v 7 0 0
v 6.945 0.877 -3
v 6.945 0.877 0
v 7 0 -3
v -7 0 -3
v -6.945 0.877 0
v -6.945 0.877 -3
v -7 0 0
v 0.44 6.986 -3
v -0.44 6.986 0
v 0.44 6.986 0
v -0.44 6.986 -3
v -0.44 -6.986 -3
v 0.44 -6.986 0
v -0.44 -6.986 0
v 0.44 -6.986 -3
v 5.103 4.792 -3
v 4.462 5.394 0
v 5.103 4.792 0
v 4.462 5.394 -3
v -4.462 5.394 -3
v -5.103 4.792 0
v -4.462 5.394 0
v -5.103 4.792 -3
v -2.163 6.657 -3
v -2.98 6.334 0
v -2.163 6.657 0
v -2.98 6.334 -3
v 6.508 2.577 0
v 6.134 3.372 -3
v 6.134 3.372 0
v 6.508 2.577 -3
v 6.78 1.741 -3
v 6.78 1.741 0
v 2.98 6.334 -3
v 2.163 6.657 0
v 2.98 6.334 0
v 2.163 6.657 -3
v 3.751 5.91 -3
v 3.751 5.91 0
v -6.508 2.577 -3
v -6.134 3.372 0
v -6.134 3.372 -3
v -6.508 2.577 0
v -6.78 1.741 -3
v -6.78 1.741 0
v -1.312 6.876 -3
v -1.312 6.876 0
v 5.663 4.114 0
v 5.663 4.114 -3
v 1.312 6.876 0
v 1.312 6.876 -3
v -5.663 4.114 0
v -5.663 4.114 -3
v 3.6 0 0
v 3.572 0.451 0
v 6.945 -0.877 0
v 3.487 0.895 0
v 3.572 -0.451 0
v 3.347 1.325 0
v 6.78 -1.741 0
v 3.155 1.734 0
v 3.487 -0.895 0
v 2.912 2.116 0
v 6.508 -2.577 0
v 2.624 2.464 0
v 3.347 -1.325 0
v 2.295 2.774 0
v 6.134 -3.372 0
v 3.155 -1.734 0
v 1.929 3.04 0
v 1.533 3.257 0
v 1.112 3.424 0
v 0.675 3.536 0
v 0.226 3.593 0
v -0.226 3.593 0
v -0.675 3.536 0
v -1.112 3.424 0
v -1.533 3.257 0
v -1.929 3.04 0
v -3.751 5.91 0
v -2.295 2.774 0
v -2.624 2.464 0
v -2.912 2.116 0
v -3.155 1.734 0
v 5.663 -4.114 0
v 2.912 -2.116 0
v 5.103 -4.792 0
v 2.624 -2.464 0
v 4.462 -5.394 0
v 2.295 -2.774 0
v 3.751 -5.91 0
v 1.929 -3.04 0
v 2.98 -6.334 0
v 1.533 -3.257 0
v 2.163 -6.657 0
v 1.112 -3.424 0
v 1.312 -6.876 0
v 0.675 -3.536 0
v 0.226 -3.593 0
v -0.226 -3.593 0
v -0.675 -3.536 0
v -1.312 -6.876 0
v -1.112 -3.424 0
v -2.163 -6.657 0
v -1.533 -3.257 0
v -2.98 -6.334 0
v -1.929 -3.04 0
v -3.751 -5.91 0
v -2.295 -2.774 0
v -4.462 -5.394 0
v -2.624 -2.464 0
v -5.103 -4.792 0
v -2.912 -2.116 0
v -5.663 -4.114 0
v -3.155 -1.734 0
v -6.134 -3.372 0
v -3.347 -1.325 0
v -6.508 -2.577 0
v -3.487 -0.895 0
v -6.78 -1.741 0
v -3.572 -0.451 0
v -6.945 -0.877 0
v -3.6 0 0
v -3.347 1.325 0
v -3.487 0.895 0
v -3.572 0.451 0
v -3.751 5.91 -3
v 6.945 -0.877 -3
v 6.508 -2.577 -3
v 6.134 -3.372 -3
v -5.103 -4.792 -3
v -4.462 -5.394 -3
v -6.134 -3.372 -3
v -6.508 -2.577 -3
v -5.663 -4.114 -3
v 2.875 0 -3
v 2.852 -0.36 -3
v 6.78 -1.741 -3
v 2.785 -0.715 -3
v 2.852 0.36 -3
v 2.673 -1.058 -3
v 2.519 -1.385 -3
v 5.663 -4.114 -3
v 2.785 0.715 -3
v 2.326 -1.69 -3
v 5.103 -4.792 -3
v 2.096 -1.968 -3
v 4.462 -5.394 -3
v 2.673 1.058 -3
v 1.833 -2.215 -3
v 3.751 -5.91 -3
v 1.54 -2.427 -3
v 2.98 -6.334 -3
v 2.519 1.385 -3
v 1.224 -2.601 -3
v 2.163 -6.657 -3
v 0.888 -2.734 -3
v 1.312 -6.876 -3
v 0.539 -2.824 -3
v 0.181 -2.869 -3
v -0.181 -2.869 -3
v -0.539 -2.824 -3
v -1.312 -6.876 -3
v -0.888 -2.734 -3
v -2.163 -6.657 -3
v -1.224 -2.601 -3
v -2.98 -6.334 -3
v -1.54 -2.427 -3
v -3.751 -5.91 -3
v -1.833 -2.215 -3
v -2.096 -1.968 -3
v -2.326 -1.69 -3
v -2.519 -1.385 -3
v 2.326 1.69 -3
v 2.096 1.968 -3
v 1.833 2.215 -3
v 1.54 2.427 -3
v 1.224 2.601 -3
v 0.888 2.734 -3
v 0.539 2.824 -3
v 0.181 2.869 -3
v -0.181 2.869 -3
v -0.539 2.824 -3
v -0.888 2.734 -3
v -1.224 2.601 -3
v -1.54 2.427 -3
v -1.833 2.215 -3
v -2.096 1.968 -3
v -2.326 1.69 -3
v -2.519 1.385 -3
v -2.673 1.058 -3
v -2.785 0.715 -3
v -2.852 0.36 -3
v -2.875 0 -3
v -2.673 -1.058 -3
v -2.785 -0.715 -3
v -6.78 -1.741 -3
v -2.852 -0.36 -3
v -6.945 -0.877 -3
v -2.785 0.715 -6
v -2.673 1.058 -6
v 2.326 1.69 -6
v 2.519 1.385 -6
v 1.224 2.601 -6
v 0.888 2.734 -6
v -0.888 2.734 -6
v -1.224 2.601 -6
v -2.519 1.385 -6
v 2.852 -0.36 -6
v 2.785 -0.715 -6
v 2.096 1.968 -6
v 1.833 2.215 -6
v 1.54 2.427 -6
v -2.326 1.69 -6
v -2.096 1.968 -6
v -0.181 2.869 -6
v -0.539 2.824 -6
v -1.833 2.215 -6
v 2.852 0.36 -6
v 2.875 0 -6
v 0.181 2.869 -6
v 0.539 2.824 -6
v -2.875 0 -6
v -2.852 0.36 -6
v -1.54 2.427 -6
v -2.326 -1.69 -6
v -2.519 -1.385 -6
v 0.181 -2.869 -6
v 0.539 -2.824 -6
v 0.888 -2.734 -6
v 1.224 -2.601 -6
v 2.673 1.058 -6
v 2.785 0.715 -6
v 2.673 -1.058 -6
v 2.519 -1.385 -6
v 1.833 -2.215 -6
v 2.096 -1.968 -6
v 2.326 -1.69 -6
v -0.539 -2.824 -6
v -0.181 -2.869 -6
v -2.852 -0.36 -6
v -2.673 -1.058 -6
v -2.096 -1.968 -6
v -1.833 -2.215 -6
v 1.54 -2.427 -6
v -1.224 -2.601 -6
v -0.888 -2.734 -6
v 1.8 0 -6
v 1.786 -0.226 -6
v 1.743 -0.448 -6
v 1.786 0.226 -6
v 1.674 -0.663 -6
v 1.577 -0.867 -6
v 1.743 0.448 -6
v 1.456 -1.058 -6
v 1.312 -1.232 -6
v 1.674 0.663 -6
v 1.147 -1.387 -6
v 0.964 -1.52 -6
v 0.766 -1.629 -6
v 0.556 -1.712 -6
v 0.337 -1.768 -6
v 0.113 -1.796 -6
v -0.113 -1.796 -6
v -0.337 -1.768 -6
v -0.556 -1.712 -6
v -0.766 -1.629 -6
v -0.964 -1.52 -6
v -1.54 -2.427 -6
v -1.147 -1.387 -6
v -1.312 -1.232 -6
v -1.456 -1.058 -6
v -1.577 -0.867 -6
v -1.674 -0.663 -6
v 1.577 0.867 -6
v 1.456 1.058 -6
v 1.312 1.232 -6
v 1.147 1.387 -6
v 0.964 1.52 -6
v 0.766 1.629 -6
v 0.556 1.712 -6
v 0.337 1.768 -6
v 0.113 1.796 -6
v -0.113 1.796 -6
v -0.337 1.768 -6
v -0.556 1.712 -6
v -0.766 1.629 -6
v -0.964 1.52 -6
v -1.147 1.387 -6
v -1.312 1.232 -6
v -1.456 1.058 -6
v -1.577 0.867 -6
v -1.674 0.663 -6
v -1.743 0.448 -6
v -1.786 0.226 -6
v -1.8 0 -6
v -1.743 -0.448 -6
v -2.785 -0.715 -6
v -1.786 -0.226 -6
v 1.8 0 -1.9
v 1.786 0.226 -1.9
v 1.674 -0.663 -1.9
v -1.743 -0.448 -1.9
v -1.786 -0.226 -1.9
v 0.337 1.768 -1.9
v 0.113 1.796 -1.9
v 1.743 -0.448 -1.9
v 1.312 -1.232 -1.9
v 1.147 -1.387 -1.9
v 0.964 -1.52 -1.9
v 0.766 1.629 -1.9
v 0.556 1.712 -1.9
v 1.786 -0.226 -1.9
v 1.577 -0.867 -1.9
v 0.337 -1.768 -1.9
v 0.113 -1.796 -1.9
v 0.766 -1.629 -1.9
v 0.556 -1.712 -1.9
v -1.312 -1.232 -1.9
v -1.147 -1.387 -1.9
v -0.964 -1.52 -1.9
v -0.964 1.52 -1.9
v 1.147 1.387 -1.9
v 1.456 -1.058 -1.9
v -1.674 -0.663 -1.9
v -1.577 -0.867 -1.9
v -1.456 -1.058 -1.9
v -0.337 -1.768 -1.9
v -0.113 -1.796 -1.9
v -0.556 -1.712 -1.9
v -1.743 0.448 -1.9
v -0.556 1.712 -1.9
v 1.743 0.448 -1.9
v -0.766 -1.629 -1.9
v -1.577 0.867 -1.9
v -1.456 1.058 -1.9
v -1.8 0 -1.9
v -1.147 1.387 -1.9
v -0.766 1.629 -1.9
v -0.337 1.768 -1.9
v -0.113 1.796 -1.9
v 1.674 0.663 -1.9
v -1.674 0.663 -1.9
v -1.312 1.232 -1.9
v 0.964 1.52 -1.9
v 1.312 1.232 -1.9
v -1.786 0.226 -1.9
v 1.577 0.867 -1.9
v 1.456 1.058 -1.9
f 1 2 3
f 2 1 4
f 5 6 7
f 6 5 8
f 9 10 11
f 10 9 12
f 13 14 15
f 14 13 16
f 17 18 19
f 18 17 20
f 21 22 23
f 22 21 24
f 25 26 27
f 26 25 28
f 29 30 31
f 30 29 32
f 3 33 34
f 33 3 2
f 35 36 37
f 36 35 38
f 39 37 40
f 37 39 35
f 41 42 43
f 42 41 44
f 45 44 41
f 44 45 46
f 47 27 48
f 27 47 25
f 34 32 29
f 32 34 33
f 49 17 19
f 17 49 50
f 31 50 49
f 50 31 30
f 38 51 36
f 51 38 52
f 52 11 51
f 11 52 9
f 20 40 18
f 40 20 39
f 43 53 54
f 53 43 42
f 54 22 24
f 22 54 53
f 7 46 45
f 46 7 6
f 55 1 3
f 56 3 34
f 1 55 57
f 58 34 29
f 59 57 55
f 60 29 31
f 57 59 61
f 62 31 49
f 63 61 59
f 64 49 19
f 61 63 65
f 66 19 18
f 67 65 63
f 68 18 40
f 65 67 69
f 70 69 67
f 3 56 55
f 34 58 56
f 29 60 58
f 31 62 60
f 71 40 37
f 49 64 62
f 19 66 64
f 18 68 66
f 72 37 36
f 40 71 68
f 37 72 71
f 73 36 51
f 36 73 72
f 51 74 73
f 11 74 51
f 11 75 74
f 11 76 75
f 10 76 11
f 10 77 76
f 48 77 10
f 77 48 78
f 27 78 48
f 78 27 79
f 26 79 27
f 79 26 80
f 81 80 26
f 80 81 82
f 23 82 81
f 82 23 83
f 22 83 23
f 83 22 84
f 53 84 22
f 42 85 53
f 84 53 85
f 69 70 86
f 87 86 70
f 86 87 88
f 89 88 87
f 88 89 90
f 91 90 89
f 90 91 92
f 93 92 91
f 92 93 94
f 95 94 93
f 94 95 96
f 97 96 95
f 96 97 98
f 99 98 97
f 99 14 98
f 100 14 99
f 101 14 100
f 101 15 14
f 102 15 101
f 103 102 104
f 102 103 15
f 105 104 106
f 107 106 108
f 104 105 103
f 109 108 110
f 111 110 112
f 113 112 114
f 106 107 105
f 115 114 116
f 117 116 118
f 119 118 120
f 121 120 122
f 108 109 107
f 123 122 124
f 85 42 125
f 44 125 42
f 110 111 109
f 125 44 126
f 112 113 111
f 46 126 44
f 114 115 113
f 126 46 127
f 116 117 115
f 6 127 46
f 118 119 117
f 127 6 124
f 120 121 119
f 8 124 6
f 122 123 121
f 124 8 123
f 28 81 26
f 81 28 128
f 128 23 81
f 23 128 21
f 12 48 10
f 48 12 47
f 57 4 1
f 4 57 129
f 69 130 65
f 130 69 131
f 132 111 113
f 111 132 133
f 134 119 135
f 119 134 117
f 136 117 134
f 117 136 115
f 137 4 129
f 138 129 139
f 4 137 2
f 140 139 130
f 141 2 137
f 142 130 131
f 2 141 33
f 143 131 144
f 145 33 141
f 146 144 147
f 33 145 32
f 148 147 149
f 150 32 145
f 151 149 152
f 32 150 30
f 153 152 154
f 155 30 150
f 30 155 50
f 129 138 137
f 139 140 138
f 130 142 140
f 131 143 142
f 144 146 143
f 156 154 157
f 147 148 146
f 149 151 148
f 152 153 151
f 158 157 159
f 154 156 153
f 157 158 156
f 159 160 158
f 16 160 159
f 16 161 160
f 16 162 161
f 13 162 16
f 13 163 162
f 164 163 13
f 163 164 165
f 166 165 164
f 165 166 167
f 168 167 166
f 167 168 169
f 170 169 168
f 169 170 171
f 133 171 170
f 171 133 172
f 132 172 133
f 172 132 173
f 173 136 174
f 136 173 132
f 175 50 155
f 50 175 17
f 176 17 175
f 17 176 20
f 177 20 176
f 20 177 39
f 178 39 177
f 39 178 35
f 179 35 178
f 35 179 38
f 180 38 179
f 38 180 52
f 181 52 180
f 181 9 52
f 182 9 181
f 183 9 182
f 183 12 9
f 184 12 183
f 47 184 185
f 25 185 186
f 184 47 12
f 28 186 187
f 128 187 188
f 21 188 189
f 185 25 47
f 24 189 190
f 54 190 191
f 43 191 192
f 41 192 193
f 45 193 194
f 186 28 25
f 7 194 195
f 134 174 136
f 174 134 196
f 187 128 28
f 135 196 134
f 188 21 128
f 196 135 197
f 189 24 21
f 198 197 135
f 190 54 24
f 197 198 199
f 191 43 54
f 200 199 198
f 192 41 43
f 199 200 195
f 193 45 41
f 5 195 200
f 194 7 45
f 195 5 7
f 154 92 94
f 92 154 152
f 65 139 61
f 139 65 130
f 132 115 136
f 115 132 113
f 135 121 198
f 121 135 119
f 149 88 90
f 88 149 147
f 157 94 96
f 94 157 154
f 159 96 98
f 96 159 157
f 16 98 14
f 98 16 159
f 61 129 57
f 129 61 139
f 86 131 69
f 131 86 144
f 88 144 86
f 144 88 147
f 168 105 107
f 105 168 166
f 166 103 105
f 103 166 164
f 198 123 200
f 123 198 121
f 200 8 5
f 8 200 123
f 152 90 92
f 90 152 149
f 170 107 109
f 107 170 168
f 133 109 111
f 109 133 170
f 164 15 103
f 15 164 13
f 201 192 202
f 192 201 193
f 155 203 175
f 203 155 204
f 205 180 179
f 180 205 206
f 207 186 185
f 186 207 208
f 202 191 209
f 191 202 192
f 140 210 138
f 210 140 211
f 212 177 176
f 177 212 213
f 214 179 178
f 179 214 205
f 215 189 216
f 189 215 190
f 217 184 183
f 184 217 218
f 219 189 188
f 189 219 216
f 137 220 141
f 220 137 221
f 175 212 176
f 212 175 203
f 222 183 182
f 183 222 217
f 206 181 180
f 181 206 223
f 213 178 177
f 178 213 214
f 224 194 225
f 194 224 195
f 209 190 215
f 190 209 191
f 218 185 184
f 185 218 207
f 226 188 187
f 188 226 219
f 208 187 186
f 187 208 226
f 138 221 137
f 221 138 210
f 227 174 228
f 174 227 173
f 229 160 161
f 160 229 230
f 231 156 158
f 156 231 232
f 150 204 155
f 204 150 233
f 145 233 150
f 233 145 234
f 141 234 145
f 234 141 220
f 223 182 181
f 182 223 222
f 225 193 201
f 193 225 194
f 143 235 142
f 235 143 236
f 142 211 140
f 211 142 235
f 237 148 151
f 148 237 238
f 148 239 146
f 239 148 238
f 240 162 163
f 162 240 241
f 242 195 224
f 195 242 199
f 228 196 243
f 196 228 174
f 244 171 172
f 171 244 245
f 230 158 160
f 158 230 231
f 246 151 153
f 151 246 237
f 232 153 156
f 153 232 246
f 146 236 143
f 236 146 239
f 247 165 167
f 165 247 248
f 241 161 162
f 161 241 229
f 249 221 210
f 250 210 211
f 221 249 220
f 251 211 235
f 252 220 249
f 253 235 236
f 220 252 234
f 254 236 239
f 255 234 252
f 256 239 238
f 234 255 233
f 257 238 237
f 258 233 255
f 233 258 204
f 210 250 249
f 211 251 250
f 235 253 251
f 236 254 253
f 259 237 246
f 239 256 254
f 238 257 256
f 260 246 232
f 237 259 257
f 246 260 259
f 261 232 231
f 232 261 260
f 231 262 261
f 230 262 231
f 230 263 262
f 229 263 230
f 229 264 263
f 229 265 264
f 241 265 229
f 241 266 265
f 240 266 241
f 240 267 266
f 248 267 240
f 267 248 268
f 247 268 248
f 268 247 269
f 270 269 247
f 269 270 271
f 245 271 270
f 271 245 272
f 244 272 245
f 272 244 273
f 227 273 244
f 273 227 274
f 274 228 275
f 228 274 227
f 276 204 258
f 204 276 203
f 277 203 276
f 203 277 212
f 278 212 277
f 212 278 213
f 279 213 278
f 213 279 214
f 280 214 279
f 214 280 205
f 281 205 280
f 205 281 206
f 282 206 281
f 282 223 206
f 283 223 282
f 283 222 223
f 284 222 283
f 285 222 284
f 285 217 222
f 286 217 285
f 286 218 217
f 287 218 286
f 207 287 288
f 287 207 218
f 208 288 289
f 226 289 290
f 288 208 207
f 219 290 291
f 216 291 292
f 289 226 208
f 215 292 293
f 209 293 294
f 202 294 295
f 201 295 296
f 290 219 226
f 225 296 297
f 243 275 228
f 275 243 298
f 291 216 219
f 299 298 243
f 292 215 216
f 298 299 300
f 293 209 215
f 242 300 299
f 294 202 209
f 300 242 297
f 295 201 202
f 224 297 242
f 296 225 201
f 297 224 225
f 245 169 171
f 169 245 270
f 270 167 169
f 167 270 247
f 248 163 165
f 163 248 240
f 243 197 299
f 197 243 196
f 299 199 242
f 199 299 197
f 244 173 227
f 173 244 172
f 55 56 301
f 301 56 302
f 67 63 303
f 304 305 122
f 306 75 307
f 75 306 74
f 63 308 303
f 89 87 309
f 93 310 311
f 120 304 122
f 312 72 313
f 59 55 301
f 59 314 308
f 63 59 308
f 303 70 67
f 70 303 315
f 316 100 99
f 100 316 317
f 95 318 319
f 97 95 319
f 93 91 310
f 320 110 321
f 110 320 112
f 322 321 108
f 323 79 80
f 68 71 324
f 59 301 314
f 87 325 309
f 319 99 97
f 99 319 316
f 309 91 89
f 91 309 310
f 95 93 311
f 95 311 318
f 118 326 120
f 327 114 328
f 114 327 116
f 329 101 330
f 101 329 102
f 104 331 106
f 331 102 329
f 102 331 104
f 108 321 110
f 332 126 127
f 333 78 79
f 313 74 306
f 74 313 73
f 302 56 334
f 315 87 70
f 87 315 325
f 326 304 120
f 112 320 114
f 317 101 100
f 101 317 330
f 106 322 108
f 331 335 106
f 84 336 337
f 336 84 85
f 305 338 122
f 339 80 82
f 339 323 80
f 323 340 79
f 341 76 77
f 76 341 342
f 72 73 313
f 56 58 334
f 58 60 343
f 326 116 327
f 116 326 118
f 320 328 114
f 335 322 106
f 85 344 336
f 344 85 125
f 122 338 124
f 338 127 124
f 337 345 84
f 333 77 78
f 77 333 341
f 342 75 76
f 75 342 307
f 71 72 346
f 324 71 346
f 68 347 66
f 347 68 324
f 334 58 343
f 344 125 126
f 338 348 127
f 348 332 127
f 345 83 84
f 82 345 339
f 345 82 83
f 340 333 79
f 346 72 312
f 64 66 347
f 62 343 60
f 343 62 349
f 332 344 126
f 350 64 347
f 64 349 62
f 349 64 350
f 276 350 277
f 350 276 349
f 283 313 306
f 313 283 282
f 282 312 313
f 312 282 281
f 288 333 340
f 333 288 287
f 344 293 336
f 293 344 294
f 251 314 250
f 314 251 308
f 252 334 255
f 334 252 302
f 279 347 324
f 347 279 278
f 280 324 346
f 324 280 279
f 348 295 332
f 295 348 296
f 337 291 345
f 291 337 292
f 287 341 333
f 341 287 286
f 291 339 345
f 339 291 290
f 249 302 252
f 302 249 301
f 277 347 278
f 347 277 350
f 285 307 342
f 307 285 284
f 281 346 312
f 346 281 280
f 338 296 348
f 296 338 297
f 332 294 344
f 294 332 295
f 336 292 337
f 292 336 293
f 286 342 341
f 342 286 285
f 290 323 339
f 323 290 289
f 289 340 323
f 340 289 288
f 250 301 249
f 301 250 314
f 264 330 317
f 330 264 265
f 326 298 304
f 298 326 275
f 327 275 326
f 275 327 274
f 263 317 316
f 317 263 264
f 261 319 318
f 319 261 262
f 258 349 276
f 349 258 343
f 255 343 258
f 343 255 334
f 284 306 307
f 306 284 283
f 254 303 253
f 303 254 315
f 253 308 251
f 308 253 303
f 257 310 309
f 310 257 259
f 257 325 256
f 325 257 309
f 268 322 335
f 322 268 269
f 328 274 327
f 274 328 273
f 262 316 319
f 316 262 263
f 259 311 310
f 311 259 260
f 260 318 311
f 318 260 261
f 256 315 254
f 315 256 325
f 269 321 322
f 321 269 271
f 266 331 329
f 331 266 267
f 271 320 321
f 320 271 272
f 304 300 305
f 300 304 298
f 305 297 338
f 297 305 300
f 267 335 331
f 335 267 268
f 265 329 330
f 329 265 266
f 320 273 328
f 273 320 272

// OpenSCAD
$fn = 50;


difference() {
	union() {
		translate(v = [0, 0, -3.0000000000]) {
			cylinder(h = 3, r = 7.0000000000);
		}
		translate(v = [0, 0, -6.0000000000]) {
			cylinder(h = 6, r = 2.8750000000);
		}
	}
	union() {
		translate(v = [0, 0, 0]) {
			rotate(a = [0, 0, 0]) {
				difference() {
					union() {
						translate(v = [0, 0, -6.0000000000]) {
							cylinder(h = 6, r = 1.5000000000);
						}
						translate(v = [0, 0, -1.9000000000]) {
							cylinder(h = 1.9000000000, r1 = 1.8000000000, r2 = 3.6000000000);
						}
						translate(v = [0, 0, -6.0000000000]) {
							cylinder(h = 6, r = 1.8000000000);
						}
						translate(v = [0, 0, -6.0000000000]) {
							cylinder(h = 6, r = 1.5000000000);
						}
					}
					union();
				}
			}
		}
	}
}
